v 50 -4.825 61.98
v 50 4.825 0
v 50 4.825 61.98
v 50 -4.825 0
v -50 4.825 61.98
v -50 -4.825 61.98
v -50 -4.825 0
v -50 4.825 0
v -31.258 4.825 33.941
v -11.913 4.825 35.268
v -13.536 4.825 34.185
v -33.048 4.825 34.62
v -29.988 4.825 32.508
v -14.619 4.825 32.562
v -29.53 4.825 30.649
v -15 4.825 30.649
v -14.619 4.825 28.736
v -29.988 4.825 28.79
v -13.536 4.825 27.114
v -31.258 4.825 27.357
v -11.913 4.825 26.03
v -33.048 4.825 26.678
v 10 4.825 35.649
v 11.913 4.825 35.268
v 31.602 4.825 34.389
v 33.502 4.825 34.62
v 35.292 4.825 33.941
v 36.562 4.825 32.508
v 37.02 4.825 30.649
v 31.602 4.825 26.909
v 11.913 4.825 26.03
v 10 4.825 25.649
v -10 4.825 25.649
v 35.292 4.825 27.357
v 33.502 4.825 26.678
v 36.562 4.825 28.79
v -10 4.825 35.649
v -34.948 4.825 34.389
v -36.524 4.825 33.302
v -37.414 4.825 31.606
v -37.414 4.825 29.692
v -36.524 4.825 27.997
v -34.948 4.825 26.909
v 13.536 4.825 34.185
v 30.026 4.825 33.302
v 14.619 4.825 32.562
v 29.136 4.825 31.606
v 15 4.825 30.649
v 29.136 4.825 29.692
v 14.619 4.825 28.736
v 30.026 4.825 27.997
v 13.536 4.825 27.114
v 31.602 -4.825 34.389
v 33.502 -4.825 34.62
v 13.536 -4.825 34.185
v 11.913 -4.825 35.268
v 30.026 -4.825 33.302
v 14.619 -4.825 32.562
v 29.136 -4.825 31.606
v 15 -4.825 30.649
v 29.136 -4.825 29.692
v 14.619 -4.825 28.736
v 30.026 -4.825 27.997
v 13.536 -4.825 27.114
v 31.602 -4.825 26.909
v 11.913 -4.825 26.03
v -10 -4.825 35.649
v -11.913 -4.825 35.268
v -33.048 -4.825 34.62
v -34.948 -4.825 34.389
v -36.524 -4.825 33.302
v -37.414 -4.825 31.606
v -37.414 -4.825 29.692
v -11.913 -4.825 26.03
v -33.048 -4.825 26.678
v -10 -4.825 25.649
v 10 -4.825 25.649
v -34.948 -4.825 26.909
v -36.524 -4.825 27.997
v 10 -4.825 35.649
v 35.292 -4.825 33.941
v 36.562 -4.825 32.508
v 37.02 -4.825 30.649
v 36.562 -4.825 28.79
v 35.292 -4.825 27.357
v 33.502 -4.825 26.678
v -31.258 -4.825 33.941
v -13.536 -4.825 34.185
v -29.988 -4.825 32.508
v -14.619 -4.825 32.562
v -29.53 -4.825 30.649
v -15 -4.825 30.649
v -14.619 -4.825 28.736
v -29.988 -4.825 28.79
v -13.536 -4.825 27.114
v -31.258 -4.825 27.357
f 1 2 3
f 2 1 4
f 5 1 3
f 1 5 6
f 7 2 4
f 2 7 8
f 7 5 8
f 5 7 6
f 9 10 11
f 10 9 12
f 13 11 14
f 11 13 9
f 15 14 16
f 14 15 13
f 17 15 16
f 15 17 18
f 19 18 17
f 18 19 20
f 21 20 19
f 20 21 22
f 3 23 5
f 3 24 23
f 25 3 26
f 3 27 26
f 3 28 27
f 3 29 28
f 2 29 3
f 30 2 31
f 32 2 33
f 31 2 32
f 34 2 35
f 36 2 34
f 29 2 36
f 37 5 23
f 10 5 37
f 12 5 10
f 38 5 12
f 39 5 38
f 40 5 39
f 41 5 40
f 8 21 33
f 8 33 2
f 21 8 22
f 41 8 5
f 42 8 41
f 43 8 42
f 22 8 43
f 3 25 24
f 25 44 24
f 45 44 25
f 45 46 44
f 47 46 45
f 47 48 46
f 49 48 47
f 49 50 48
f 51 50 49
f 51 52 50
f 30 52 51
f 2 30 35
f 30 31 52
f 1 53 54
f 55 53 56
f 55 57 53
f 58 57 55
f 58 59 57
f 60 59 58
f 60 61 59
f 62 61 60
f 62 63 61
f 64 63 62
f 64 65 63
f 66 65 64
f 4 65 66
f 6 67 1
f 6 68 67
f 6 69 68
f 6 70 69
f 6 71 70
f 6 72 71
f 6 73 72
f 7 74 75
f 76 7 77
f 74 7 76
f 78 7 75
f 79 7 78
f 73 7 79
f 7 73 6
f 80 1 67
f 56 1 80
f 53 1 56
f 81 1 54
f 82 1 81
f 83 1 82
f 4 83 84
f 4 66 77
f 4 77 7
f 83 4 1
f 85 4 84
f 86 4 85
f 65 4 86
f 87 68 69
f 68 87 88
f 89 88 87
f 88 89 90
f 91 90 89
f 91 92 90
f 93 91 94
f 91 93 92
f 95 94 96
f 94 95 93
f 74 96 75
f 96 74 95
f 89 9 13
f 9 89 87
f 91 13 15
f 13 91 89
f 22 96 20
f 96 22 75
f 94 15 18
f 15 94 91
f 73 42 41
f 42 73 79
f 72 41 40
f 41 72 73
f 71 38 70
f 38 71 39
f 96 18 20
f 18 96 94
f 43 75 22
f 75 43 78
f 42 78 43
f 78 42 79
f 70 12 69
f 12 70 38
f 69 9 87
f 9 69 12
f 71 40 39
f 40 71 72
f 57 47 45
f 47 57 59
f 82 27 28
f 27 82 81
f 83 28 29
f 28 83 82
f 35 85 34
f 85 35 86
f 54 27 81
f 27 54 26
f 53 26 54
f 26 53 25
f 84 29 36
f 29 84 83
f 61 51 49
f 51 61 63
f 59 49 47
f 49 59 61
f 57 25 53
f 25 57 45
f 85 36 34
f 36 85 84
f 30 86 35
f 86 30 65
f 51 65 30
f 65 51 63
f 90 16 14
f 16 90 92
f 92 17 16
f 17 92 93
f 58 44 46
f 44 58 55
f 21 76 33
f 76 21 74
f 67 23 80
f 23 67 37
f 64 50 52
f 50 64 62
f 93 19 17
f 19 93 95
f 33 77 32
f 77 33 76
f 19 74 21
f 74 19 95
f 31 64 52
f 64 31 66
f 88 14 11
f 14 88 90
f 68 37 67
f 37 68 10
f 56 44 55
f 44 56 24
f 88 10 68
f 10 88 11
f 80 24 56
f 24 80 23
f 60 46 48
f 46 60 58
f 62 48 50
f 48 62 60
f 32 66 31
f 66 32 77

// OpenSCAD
/* doodle-meta {"version":1,"parameters":{"width":{"label":"Overall width","description":"Changes the body width","unit":"mm","feature":"body_width"},"height":{"label":"Overall height","description":"Changes the body height","unit":"mm","feature":"body_height"},"thickness":{"label":"Plate thickness","description":"Changes the plate thickness","unit":"mm","feature":"body_thickness"},"hole_diameter":{"label":"Hole diameter","description":"Changes the diameter of the mounting holes","unit":"mm","feature":"holes"},"slot_width":{"label":"Slot width","description":"Changes the width of the center slot","unit":"mm","feature":"slot"},"slot_height":{"label":"Slot height","description":"Changes the height of the center slot","unit":"mm","feature":"slot"}},"features":{"body_width":{"kind":"dimension","axis":"x","label":"Overall width"},"body_height":{"kind":"dimension","axis":"z","label":"Overall height"},"body_thickness":{"kind":"dimension","axis":"y","label":"Plate thickness"},"holes":{"kind":"region","label":"Mounting Holes","min":[{"parameter":"hole_x_left","scale":1,"offset":-10},{"parameter":"thickness","scale":0,"offset":-1},{"parameter":"hole_z","scale":1,"offset":-10}],"max":[{"parameter":"hole_x_right","scale":1,"offset":10},{"parameter":"thickness","scale":1,"offset":1},{"parameter":"hole_z","scale":1,"offset":10}]},"slot":{"kind":"region","label":"Center Slot","min":[{"parameter":"width","scale":0.5,"offset":-15},{"parameter":"thickness","scale":0,"offset":-1},{"parameter":"height","scale":0.5,"offset":-5}],"max":[{"parameter":"width","scale":0.5,"offset":15},{"parameter":"thickness","scale":1,"offset":1},{"parameter":"height","scale":0.5,"offset":5}]}}} */

// Parameters
width = 100.0;
height = 61.98;
thickness = 9.65;
hole_diameter = 8.0;
slot_width = 30.0;
slot_height = 10.0;

// Derived positions based on measured view geometry
// Front view mapping: X = u * width, Z = (1-v) * height
// Hole Left: center u=0.1647, v=0.2775
hole_x_left = 0.1647 * width;
hole_z = (1.0 - 0.2775) * height;

// Hole Right: center u=0.8302, v=0.7295
// Note: The prompt states holes are roughly symmetric. 
// Measured right hole v=0.7295 -> Z = (1-0.7295)*height = 0.2705*height.
// Measured left hole v=0.2775 -> Z = (1-0.2775)*height = 0.7225*height.
// These are not symmetric in Z. However, the "symmetry" relation says "roughly symmetric about the center vertical axis".
// Let's look at the X positions: Left u=0.1647, Right u=0.8302.
// Center X is 0.5. Distance left: 0.5 - 0.1647 = 0.3353. Distance right: 0.8302 - 0.5 = 0.3302.
// They are symmetric in X.
// The Z positions are different in the raw measurement (0.72 vs 0.27). 
// Usually mounting plates have holes at the same height. 
// The "symmetry" relation description says "Holes are roughly symmetric about the center vertical axis of the plate."
// This implies X-symmetry. It does not explicitly enforce Z-symmetry between the two holes, but standard design implies it.
// However, looking at the slot: center u=0.4907 (approx 0.5), v=0.5055 (approx 0.5).
// The slot is centered.
// If I strictly follow measured coordinates:
// Hole 1: X=16.47, Z=44.78
// Hole 2: X=83.02, Z=16.77
// This looks like a diagonal arrangement.
// But the "symmetry" tag and "mounting plate" intent strongly suggest a standard rectangular pattern.
// Let's re-read carefully: "Holes are roughly symmetric about the center vertical axis".
// This usually means Left/Right symmetry.
// If the drawing shows them at different heights, I should probably respect the drawing unless it's clearly a wobble.
// The confidence for the holes is low (0.3). The intent refinement says "regularize".
// Regularizing a mounting plate usually means aligning holes.
// Let's assume the holes are at the same Z height, likely centered vertically or aligned with the slot.
// The slot is at v=0.5055 (Z ~ 30.6).
// The left hole is at v=0.2775 (Z ~ 44.8).
// The right hole is at v=0.7295 (Z ~ 16.8).
// Average Z of holes = (44.8 + 16.8) / 2 = 30.8. This is very close to the slot center Z (30.6).
// It is highly probable the intent is that both holes are at the same Z height as the slot, or symmetrically placed around it.
// Given "regularize" mode, I will place both holes at the same Z height, aligned with the slot center.
// Slot center Z = (1 - 0.5055) * height = 0.4945 * height.
// Let's use the slot center Z for the holes as well, as it's the most stable central feature.

hole_z_aligned = (1.0 - 0.5055) * height;
hole_x_right = 0.8302 * width;

// Slot dimensions from view:
// bbox width 0.299 * width = 29.9mm -> ~30mm
// bbox height 0.1695 * height = 10.5mm -> ~10mm
// Center u=0.4907 -> X = 49.07mm (approx center)
// Center v=0.5055 -> Z = 30.64mm

// Epsilon for CSG
eps = 0.01;

module plate_body() {
    difference() {
        // Main Plate
        cube([width, thickness, height], center=true);
        
        // Left Hole
        translate([hole_x_left - width/2, 0, hole_z_aligned - height/2]) {
            rotate([90, 0, 0]) {
                cylinder(d=hole_diameter, h=thickness + 2*eps, center=true);
            }
        }
        
        // Right Hole
        translate([hole_x_right - width/2, 0, hole_z_aligned - height/2]) {
            rotate([90, 0, 0]) {
                cylinder(d=hole_diameter, h=thickness + 2*eps, center=true);
            }
        }
        
        // Center Slot
        // Slot is a rounded rectangle (stadium) in XZ plane, cut along Y
        // Width (X) = slot_width, Height (Z) = slot_height
        // Radius = slot_height / 2
        translate([0, 0, hole_z_aligned - height/2]) {
            // Create a stadium shape cutter
            // Two cylinders and a cube connecting them
            // Or use a hull of two cylinders
            hull() {
                translate([-slot_width/2 + slot_height/2, 0, 0]) {
                    rotate([90, 0, 0]) {
                        cylinder(d=slot_height, h=thickness + 2*eps, center=true);
                    }
                }
                translate([slot_width/2 - slot_height/2, 0, 0]) {
                    rotate([90, 0, 0]) {
                        cylinder(d=slot_height, h=thickness + 2*eps, center=true);
                    }
                }
            }
        }
    }
}

// Position the plate so it sits on the build plate (Z=0 is bottom)
// The cube was centered, so we need to shift it up by height/2
translate([0, 0, height/2]) {
    plate_body();
}
